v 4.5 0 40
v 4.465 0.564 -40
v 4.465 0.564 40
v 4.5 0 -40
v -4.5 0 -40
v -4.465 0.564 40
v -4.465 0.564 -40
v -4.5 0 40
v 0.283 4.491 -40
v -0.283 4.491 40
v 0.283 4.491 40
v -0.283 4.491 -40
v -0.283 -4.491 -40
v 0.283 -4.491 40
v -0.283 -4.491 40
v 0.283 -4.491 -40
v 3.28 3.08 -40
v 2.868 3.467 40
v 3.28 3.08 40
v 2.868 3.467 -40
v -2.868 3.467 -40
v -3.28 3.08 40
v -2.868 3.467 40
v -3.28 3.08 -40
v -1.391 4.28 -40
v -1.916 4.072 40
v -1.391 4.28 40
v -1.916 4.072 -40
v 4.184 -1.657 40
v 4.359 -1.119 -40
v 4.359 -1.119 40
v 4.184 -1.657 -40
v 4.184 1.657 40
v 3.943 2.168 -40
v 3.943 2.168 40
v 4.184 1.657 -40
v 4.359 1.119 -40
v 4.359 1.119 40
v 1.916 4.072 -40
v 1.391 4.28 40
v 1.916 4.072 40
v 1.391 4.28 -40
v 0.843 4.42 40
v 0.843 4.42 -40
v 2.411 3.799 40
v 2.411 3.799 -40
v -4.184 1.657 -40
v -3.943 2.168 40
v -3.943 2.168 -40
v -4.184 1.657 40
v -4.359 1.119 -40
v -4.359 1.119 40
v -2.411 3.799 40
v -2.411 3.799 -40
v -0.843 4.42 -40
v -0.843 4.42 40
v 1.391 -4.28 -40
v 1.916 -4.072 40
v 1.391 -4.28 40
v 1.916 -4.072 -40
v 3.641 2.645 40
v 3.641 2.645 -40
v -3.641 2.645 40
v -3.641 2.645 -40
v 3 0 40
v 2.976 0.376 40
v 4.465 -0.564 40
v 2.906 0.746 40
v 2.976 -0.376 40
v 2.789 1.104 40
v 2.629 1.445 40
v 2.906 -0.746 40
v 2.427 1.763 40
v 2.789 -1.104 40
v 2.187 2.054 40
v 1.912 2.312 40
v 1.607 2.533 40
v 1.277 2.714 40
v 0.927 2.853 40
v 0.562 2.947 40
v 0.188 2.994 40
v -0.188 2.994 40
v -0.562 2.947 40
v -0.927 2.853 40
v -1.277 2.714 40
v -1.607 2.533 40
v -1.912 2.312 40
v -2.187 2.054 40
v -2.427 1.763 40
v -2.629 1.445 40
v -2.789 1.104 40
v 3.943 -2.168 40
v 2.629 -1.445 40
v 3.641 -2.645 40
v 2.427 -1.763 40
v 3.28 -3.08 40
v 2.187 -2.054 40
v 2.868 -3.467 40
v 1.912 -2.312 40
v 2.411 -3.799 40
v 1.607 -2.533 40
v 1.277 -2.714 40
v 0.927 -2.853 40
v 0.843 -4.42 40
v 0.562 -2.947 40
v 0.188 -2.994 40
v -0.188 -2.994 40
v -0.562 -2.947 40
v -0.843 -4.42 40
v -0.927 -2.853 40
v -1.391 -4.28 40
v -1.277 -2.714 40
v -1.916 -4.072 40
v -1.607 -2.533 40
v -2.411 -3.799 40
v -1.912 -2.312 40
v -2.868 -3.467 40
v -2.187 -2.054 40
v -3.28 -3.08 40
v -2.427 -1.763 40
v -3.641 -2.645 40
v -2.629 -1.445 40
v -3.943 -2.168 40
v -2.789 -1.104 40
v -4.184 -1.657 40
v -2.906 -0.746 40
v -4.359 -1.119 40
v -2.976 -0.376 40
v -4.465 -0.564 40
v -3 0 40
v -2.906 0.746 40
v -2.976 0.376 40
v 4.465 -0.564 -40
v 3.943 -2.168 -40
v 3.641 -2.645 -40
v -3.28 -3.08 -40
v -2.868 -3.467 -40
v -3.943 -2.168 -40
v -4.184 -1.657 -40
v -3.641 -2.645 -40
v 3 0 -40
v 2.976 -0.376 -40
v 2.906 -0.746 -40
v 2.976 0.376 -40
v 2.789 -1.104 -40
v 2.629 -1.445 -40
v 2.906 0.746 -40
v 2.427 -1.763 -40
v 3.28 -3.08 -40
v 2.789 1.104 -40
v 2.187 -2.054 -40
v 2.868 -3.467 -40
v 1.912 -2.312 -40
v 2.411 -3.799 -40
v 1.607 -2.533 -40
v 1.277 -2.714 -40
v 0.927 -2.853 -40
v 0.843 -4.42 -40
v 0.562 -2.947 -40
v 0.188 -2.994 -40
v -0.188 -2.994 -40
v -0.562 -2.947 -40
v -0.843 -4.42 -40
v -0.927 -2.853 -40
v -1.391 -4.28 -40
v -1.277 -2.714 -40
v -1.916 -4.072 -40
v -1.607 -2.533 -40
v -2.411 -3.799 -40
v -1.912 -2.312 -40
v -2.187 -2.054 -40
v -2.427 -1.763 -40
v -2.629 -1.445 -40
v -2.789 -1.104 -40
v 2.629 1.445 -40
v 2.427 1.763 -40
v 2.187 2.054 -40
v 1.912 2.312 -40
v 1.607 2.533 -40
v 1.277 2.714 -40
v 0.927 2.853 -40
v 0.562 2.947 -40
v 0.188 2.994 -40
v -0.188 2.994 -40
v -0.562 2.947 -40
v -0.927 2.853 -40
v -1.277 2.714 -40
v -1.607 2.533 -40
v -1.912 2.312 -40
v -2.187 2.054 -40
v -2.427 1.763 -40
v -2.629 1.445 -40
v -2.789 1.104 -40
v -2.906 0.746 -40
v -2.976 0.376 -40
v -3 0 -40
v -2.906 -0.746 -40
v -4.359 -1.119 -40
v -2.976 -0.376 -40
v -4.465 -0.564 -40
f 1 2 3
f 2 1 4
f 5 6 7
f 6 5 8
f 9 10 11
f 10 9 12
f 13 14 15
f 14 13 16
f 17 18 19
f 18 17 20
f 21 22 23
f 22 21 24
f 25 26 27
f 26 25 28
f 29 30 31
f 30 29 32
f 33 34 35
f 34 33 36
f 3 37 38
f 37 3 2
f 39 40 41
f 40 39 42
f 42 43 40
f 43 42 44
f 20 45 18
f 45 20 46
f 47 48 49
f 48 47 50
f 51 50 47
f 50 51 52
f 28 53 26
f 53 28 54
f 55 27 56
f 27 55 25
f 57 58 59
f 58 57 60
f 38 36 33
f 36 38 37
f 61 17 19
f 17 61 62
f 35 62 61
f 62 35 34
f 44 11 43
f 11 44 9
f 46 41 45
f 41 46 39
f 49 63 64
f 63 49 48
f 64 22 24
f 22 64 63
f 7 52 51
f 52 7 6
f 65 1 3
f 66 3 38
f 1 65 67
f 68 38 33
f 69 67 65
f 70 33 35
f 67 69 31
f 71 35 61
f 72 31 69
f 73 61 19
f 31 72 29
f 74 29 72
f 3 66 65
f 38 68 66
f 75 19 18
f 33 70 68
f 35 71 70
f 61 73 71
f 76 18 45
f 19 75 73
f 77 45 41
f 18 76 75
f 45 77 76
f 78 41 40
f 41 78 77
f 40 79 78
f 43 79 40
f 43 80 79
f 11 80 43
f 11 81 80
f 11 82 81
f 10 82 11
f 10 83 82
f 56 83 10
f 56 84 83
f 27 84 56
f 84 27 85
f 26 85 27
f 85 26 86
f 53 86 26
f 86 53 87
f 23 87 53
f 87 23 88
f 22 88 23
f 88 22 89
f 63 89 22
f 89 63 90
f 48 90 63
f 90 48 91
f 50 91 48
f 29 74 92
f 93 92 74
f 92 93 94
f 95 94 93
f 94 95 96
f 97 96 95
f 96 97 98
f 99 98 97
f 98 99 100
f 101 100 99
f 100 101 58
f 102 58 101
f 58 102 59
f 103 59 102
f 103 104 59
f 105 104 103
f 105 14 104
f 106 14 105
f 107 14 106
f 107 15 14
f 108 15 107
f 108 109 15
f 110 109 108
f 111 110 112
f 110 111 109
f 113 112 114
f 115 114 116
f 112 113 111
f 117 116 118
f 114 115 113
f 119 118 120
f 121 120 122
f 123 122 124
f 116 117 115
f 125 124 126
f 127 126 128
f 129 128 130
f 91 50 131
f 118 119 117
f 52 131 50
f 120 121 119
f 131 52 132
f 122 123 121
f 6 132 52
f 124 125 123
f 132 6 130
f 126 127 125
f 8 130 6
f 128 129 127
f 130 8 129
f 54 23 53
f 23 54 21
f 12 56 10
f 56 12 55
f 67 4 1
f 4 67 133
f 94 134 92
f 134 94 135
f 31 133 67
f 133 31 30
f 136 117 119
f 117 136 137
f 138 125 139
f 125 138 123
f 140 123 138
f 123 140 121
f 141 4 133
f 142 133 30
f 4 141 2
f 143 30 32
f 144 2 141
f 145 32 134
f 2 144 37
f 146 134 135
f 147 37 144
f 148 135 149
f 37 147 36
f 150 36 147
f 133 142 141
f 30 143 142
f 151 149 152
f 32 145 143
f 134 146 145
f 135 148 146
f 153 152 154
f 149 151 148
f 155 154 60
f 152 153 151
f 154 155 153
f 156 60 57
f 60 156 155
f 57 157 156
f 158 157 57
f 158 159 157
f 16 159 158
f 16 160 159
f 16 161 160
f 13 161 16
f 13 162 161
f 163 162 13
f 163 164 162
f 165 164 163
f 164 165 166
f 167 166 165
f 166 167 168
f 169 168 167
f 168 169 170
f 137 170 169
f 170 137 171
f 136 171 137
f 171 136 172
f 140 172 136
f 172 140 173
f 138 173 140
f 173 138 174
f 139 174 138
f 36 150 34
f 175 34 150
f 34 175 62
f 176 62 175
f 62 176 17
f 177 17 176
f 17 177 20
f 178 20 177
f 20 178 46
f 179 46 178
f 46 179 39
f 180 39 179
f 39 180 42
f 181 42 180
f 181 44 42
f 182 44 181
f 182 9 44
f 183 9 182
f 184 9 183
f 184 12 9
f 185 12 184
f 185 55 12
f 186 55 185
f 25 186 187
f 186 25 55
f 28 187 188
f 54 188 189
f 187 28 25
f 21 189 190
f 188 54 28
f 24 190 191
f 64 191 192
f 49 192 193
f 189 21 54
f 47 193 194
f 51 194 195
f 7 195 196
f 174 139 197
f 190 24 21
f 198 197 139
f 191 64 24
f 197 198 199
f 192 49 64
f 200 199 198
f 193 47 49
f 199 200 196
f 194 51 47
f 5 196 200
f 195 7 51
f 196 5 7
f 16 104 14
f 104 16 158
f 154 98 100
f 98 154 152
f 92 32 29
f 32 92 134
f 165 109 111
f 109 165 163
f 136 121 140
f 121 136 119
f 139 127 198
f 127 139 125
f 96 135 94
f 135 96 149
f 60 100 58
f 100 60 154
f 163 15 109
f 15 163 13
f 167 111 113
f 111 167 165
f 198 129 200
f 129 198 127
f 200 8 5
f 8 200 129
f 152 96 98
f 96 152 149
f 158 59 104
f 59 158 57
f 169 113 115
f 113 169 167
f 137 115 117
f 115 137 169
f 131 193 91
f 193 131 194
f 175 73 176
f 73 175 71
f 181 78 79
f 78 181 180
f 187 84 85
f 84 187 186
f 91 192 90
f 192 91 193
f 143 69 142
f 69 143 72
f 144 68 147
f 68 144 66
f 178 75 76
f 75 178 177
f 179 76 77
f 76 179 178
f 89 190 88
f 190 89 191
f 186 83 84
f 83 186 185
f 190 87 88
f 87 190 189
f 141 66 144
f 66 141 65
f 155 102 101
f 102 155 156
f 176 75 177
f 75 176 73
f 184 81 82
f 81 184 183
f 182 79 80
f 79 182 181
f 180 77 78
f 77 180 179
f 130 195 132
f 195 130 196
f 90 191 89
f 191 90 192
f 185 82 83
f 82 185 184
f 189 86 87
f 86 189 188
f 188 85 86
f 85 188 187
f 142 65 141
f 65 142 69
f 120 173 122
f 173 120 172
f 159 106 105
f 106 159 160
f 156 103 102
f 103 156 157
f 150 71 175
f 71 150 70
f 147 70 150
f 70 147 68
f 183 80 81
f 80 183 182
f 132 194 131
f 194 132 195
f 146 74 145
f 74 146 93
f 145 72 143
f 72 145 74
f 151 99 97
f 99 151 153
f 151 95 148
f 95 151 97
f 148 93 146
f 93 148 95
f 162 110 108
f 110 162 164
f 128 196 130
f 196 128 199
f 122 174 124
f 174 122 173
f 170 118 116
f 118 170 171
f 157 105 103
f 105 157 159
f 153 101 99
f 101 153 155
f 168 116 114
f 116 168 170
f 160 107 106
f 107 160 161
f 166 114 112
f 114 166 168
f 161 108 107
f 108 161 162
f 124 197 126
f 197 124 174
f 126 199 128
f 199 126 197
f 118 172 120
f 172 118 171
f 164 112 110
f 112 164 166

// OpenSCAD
$fn = 50;


difference() {
	union() {
		translate(v = [0, 0, -40.0000000000]) {
			cylinder(h = 80, r = 4.5000000000);
		}
	}
	union() {
		translate(v = [0, 0, -100.0000000000]) {
			cylinder(h = 200, r = 3);
		}
	}
}
